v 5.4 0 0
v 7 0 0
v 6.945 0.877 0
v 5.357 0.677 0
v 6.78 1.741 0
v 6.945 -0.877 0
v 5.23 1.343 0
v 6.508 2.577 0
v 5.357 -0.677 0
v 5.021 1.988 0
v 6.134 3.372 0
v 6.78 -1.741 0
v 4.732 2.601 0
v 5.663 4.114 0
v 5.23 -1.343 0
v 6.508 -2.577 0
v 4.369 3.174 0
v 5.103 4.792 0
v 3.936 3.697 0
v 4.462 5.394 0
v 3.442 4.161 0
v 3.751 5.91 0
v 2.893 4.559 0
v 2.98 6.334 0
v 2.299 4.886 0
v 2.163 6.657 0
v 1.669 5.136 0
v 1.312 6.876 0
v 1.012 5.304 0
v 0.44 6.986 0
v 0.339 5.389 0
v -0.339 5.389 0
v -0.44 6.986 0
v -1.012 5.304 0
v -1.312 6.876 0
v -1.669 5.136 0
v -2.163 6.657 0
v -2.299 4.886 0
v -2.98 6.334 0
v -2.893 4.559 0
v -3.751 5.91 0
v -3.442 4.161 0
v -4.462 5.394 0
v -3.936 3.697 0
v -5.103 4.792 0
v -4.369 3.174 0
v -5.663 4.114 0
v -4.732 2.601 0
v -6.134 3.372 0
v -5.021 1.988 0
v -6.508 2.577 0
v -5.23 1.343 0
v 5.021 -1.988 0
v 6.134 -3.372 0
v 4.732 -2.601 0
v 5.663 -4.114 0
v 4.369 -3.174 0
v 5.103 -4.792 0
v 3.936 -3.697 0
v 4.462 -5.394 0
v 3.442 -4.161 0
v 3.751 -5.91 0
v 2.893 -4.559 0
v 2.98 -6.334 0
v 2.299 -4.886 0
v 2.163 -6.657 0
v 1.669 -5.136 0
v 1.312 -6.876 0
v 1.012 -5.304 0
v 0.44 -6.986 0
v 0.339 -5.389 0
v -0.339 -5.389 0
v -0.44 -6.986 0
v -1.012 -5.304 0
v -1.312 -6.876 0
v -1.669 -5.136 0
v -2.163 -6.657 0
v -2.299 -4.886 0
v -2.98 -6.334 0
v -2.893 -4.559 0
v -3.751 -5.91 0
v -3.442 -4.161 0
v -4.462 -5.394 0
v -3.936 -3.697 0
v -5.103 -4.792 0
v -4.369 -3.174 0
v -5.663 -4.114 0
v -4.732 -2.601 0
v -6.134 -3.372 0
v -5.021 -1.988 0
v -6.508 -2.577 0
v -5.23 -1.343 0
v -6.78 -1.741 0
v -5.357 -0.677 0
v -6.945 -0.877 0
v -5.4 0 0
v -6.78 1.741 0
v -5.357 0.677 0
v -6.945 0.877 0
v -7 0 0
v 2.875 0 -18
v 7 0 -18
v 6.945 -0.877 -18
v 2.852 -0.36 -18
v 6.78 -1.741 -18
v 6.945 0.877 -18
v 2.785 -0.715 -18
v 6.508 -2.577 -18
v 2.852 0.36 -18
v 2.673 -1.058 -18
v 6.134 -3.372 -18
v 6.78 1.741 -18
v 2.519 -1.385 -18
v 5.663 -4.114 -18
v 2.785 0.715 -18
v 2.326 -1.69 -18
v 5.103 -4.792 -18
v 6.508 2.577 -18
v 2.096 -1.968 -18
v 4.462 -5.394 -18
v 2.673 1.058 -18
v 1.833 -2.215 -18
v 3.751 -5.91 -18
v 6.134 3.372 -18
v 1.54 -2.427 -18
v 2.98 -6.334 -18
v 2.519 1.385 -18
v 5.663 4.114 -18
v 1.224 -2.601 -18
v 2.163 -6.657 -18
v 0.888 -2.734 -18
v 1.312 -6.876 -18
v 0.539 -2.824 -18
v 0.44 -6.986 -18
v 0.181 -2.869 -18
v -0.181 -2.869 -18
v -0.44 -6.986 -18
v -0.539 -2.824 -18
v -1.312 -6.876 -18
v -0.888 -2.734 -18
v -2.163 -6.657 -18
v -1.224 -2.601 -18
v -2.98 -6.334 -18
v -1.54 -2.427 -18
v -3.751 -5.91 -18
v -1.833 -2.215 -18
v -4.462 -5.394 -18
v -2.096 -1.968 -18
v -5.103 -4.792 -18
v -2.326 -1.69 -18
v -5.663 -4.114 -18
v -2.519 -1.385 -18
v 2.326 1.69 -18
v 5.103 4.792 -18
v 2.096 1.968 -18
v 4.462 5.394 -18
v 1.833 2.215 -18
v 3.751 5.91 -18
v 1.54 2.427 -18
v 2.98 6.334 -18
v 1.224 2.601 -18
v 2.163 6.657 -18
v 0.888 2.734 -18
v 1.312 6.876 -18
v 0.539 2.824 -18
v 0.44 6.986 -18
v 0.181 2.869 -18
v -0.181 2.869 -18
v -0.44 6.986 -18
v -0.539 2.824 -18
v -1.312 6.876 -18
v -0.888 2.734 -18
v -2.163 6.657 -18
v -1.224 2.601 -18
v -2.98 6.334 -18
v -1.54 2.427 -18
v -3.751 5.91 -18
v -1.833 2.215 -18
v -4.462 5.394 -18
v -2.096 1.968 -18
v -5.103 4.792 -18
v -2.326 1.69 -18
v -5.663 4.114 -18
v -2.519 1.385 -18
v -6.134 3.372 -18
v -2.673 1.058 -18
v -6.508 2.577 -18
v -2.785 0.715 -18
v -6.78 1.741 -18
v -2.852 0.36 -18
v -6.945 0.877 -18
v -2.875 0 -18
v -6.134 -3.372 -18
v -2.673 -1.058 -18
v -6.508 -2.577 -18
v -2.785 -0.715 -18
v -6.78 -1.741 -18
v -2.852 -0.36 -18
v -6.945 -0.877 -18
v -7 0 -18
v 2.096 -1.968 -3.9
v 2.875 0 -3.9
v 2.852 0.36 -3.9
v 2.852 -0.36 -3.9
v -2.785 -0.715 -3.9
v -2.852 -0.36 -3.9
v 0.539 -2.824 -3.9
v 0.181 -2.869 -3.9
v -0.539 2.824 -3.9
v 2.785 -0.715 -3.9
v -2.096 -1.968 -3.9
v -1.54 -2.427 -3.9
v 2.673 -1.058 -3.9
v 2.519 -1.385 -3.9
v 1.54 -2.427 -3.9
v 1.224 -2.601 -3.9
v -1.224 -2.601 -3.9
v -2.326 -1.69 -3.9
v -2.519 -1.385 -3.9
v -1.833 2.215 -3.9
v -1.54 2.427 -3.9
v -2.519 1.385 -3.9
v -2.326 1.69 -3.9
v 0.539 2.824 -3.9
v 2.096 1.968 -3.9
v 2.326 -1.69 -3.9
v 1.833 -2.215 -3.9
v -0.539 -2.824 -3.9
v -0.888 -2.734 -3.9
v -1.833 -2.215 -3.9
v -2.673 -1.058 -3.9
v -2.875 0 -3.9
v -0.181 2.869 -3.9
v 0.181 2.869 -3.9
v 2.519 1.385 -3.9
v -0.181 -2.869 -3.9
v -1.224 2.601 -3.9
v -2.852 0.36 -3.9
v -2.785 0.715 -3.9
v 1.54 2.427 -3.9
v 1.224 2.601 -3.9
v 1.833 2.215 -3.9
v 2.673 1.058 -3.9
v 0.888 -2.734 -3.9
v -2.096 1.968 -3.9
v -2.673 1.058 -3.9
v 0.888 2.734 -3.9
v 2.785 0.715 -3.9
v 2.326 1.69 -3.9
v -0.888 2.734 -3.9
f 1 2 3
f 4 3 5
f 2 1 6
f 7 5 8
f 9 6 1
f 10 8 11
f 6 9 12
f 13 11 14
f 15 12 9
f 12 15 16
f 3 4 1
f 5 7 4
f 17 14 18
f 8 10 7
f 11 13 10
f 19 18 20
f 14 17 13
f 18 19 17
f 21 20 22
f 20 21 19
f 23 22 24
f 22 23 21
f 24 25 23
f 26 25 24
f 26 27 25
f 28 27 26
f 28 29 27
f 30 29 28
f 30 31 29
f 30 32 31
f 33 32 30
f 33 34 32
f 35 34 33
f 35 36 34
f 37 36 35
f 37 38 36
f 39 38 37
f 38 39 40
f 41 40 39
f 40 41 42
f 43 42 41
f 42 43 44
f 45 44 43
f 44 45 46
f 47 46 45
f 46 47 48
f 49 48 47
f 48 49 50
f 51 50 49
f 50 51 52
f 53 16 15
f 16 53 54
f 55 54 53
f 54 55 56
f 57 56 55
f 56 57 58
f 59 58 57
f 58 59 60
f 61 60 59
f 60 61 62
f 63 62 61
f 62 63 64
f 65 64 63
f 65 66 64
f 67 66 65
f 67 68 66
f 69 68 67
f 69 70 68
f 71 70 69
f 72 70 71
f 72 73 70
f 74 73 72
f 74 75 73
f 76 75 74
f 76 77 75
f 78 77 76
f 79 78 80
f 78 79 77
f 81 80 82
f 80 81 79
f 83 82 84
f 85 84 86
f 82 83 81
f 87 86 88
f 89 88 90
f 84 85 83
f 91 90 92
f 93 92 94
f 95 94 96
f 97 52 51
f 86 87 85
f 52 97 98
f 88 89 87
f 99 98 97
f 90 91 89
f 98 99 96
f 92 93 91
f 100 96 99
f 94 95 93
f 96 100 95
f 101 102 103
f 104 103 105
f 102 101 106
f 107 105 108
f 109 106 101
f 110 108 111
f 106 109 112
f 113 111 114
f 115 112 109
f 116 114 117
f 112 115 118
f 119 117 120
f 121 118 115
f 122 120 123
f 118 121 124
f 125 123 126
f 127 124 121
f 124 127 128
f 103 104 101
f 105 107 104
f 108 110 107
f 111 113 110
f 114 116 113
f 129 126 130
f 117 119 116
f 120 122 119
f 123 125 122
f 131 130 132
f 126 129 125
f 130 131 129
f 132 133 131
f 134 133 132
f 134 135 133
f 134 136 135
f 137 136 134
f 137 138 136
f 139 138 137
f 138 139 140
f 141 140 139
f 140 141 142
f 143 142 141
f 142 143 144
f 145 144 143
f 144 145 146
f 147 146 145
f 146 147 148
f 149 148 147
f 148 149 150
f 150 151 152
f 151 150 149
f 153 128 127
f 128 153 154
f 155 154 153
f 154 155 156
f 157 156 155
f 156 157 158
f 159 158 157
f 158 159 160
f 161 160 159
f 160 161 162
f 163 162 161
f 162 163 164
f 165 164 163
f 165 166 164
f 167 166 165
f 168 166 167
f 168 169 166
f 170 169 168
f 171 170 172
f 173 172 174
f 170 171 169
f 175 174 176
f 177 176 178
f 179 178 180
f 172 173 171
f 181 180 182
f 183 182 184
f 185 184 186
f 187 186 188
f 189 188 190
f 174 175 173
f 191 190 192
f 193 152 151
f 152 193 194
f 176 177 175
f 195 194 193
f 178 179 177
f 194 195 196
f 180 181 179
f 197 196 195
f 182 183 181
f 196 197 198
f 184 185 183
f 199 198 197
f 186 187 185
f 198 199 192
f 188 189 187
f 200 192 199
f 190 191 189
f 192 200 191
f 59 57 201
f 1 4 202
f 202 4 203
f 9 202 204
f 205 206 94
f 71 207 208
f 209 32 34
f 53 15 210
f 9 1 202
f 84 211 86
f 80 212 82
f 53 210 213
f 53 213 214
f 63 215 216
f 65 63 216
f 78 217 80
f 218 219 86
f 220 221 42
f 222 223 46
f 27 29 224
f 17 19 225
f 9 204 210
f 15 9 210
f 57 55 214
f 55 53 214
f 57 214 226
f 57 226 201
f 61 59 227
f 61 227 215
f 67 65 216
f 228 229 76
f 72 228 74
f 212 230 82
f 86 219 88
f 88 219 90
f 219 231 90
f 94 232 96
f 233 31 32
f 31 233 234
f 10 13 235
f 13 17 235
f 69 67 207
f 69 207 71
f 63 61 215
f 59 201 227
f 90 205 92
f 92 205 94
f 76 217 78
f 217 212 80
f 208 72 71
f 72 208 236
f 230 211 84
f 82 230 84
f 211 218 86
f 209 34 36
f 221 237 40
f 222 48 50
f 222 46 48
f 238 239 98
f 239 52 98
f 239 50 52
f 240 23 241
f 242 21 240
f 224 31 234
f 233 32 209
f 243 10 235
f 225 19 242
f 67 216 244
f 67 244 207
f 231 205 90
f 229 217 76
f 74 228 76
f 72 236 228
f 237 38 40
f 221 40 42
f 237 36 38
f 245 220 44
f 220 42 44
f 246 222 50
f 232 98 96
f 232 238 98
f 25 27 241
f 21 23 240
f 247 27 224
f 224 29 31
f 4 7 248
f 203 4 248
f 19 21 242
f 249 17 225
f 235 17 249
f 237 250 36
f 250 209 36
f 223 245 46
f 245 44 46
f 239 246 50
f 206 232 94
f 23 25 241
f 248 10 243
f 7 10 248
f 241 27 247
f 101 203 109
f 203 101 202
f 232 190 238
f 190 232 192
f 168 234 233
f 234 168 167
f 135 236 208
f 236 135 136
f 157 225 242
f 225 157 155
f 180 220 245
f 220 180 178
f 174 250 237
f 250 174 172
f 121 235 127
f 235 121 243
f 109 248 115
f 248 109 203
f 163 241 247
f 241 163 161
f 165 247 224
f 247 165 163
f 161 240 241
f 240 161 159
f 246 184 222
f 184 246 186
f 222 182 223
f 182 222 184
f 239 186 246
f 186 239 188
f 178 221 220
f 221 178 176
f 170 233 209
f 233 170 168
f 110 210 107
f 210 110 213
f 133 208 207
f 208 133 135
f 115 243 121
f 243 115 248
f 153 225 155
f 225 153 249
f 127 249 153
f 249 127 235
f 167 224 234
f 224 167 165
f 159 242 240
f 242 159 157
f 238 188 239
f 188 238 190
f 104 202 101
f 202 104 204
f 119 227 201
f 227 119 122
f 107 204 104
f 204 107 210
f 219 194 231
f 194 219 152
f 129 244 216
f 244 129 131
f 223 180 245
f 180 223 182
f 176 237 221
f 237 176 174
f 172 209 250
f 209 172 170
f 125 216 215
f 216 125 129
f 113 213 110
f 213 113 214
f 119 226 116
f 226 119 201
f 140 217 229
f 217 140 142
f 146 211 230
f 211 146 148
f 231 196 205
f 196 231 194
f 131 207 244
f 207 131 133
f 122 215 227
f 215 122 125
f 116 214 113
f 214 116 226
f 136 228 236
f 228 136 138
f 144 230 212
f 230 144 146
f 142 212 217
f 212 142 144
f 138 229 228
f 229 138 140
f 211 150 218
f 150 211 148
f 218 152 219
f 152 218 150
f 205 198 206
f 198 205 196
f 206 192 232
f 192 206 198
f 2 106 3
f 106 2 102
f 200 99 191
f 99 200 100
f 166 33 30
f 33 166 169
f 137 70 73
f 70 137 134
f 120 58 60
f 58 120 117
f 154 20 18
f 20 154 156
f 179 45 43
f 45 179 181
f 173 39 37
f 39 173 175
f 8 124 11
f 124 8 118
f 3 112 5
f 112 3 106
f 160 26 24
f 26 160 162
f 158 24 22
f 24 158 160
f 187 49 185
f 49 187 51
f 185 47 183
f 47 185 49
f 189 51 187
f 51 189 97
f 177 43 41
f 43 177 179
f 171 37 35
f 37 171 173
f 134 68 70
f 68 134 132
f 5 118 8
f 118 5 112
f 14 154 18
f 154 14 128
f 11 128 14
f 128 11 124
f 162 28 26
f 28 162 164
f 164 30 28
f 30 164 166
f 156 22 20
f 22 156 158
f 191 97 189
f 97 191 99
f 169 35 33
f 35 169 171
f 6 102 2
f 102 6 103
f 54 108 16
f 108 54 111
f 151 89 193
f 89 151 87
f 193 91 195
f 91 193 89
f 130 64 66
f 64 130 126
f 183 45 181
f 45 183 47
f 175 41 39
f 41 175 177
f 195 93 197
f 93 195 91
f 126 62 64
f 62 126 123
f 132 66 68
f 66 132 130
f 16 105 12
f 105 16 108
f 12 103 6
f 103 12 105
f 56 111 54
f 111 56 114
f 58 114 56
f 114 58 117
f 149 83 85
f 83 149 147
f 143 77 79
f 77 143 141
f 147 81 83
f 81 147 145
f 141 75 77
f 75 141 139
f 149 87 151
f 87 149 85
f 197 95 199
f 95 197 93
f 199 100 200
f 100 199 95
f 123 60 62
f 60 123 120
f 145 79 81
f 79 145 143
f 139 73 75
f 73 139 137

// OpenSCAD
$fn = 50;


difference() {
	union() {
		translate(v = [0, 0, -18.0000000000]) {
			cylinder(h = 18, r = 7.0000000000);
		}
	}
	union() {
		translate(v = [0, 0, 0]) {
			rotate(a = [0, 0, 0]) {
				difference() {
					union() {
						#translate(v = [0, 0, -18.0000000000]) {
							cylinder(h = 18, r = 2.6000000000);
						}
						#translate(v = [0, 0, -3.9000000000]) {
							cylinder(h = 3.9000000000, r1 = 2.8750000000, r2 = 5.4000000000);
						}
						#translate(v = [0, 0, -18.0000000000]) {
							cylinder(h = 18, r = 2.8750000000);
						}
						#translate(v = [0, 0, -18.0000000000]) {
							cylinder(h = 18, r = 2.6000000000);
						}
					}
					union();
				}
			}
		}
	}
}
